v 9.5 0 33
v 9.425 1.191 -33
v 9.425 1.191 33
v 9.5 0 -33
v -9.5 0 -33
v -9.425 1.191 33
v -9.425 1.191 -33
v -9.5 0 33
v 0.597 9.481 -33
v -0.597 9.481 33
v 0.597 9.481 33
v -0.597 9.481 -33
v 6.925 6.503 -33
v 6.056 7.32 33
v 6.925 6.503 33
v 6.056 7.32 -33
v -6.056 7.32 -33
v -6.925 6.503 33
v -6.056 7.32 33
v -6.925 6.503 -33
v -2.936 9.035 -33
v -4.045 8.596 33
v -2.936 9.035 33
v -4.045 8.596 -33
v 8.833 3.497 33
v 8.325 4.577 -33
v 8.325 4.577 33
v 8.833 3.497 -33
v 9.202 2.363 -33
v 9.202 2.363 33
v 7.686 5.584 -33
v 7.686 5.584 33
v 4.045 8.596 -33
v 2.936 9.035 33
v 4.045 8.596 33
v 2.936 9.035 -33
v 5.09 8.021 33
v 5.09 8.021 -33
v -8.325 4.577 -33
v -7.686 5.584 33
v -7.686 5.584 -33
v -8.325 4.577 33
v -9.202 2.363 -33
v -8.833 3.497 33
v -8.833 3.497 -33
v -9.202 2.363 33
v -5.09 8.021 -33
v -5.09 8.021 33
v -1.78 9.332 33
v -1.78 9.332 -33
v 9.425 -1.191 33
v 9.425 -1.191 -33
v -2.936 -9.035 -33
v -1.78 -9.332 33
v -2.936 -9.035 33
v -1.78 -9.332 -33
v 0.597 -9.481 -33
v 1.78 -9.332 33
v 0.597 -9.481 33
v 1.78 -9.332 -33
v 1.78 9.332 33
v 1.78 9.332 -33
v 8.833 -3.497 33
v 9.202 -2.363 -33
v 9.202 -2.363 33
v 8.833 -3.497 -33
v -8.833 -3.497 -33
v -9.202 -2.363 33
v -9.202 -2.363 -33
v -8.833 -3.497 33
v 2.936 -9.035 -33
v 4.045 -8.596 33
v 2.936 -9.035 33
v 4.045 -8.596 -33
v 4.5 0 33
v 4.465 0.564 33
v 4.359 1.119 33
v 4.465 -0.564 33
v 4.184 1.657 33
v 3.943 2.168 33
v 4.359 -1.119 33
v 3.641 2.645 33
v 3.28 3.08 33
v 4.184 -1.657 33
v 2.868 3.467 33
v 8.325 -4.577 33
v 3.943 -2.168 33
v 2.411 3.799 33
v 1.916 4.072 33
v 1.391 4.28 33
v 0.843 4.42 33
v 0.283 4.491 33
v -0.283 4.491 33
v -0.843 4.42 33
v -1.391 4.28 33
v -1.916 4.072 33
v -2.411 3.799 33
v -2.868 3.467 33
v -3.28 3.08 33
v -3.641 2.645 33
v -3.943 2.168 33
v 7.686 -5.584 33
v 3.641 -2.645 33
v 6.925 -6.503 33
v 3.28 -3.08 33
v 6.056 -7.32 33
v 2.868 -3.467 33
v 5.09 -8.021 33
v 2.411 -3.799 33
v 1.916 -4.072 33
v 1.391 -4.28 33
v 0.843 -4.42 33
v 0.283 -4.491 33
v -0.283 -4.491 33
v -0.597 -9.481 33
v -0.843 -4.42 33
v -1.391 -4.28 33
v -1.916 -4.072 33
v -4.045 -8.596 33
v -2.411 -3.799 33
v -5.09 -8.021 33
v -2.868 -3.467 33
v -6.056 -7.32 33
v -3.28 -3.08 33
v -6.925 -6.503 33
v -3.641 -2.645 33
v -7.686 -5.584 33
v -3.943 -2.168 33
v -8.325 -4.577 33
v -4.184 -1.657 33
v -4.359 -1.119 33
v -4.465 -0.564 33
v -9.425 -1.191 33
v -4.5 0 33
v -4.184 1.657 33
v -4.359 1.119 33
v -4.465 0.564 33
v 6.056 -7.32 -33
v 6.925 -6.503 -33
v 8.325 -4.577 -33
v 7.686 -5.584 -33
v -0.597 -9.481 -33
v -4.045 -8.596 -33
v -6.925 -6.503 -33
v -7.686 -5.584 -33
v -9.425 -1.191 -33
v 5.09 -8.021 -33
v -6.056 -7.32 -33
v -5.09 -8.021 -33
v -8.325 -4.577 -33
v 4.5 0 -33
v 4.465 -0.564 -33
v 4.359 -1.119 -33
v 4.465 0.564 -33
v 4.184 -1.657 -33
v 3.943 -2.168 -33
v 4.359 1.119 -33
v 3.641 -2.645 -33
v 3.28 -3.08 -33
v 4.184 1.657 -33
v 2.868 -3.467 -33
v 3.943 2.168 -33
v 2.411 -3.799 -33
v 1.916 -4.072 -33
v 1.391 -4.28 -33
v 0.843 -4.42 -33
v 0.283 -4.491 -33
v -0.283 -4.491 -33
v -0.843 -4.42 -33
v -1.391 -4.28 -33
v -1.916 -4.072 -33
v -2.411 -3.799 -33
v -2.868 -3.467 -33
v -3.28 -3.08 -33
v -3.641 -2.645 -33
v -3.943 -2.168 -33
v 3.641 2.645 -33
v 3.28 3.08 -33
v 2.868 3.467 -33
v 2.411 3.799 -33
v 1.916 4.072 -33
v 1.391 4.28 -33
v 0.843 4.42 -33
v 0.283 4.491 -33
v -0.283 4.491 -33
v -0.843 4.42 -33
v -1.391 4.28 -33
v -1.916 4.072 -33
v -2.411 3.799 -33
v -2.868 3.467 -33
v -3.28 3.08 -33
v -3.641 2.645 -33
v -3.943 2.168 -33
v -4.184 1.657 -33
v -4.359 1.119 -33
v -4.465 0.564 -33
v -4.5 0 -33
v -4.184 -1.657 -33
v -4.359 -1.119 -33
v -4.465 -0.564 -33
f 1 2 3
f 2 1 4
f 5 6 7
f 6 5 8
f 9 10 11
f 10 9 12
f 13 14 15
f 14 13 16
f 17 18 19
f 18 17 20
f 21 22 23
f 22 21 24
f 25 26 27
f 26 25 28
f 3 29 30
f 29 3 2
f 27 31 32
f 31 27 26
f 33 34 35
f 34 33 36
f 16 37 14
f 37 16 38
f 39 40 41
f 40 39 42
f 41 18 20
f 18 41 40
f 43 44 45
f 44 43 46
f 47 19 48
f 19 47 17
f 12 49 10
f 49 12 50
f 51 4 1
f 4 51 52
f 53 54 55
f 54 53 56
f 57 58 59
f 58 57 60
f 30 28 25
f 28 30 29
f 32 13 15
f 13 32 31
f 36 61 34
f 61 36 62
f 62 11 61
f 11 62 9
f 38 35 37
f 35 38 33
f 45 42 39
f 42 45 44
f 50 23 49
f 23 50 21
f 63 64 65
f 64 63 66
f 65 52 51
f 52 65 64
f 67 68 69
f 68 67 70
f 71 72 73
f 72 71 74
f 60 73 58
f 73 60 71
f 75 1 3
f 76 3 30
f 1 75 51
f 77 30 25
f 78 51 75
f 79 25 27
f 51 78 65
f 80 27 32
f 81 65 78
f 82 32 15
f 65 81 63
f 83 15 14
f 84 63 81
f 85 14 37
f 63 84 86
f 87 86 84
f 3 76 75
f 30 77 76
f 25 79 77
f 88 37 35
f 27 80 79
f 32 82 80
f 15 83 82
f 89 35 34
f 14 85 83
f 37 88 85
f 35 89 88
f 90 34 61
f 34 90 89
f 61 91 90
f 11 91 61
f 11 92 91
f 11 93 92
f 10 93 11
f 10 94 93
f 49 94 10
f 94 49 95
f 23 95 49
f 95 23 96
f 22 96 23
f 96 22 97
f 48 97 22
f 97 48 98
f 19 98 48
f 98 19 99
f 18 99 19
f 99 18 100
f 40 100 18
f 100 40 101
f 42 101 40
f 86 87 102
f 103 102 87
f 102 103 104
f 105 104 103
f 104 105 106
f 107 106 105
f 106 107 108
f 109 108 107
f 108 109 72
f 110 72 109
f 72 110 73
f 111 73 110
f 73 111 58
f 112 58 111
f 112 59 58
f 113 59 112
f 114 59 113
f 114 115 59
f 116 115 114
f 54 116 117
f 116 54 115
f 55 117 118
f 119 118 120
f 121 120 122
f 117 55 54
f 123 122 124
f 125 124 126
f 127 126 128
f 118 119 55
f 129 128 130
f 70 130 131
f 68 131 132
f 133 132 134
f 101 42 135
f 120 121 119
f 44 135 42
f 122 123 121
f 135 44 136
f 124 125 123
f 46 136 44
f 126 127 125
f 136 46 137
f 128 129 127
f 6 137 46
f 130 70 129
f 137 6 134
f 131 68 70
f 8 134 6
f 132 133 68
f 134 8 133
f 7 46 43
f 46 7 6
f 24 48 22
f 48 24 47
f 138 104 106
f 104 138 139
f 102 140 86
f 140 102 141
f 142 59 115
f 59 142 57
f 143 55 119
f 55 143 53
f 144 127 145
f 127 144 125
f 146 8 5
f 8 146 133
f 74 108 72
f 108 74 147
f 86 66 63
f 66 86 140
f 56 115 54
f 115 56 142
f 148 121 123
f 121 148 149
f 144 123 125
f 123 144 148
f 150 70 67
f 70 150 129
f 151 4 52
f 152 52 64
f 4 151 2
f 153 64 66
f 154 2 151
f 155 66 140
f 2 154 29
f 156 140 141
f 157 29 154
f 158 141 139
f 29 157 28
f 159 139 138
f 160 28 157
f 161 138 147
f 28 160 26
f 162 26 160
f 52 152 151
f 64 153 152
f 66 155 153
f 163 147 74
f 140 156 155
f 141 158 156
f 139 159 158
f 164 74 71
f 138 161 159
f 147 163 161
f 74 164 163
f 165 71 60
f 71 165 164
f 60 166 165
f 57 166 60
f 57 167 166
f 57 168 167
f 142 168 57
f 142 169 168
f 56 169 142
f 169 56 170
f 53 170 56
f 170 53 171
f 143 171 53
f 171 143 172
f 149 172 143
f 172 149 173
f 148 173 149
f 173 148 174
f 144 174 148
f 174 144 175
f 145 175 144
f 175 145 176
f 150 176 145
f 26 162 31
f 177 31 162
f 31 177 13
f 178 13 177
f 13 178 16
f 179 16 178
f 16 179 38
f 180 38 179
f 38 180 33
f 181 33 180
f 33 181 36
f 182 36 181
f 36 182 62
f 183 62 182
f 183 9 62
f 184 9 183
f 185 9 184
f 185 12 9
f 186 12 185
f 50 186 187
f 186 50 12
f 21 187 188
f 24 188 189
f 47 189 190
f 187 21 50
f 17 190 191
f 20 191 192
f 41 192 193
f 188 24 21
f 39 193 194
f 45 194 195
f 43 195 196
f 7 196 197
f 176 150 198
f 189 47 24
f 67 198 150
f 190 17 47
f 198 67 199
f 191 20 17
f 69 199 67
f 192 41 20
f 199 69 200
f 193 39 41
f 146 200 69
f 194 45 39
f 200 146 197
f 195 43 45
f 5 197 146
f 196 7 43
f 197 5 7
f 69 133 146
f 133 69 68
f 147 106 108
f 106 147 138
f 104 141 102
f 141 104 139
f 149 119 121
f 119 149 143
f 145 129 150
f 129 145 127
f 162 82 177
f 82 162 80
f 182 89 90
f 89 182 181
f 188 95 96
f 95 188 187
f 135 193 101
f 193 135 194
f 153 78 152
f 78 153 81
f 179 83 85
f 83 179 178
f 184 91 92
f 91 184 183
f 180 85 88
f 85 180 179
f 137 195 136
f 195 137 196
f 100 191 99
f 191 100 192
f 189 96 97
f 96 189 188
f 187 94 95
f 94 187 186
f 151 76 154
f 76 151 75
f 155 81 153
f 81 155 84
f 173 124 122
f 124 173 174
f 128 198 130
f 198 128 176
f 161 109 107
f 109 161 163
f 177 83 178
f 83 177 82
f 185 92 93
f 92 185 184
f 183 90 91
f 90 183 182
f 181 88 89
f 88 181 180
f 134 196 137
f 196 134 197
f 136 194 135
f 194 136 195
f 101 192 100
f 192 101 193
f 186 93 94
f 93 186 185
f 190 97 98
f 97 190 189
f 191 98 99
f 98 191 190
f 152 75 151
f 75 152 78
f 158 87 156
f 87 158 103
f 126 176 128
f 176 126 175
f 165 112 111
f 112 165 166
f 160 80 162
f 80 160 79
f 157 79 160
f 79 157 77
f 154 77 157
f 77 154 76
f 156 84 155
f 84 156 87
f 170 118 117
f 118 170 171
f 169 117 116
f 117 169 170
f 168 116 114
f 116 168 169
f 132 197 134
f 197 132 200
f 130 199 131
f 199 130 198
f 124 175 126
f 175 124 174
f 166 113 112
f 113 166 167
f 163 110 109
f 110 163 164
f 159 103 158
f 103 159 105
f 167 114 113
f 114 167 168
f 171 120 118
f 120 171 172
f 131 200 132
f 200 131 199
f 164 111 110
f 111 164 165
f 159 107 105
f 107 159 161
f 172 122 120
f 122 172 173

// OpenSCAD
$fn = 50;


difference() {
	union() {
		translate(v = [0, 0, -33.0000000000]) {
			cylinder(h = 66, r = 9.5000000000);
		}
	}
	union() {
		translate(v = [0, 0, -100.0000000000]) {
			cylinder(h = 200, r = 4.5000000000);
		}
	}
}
